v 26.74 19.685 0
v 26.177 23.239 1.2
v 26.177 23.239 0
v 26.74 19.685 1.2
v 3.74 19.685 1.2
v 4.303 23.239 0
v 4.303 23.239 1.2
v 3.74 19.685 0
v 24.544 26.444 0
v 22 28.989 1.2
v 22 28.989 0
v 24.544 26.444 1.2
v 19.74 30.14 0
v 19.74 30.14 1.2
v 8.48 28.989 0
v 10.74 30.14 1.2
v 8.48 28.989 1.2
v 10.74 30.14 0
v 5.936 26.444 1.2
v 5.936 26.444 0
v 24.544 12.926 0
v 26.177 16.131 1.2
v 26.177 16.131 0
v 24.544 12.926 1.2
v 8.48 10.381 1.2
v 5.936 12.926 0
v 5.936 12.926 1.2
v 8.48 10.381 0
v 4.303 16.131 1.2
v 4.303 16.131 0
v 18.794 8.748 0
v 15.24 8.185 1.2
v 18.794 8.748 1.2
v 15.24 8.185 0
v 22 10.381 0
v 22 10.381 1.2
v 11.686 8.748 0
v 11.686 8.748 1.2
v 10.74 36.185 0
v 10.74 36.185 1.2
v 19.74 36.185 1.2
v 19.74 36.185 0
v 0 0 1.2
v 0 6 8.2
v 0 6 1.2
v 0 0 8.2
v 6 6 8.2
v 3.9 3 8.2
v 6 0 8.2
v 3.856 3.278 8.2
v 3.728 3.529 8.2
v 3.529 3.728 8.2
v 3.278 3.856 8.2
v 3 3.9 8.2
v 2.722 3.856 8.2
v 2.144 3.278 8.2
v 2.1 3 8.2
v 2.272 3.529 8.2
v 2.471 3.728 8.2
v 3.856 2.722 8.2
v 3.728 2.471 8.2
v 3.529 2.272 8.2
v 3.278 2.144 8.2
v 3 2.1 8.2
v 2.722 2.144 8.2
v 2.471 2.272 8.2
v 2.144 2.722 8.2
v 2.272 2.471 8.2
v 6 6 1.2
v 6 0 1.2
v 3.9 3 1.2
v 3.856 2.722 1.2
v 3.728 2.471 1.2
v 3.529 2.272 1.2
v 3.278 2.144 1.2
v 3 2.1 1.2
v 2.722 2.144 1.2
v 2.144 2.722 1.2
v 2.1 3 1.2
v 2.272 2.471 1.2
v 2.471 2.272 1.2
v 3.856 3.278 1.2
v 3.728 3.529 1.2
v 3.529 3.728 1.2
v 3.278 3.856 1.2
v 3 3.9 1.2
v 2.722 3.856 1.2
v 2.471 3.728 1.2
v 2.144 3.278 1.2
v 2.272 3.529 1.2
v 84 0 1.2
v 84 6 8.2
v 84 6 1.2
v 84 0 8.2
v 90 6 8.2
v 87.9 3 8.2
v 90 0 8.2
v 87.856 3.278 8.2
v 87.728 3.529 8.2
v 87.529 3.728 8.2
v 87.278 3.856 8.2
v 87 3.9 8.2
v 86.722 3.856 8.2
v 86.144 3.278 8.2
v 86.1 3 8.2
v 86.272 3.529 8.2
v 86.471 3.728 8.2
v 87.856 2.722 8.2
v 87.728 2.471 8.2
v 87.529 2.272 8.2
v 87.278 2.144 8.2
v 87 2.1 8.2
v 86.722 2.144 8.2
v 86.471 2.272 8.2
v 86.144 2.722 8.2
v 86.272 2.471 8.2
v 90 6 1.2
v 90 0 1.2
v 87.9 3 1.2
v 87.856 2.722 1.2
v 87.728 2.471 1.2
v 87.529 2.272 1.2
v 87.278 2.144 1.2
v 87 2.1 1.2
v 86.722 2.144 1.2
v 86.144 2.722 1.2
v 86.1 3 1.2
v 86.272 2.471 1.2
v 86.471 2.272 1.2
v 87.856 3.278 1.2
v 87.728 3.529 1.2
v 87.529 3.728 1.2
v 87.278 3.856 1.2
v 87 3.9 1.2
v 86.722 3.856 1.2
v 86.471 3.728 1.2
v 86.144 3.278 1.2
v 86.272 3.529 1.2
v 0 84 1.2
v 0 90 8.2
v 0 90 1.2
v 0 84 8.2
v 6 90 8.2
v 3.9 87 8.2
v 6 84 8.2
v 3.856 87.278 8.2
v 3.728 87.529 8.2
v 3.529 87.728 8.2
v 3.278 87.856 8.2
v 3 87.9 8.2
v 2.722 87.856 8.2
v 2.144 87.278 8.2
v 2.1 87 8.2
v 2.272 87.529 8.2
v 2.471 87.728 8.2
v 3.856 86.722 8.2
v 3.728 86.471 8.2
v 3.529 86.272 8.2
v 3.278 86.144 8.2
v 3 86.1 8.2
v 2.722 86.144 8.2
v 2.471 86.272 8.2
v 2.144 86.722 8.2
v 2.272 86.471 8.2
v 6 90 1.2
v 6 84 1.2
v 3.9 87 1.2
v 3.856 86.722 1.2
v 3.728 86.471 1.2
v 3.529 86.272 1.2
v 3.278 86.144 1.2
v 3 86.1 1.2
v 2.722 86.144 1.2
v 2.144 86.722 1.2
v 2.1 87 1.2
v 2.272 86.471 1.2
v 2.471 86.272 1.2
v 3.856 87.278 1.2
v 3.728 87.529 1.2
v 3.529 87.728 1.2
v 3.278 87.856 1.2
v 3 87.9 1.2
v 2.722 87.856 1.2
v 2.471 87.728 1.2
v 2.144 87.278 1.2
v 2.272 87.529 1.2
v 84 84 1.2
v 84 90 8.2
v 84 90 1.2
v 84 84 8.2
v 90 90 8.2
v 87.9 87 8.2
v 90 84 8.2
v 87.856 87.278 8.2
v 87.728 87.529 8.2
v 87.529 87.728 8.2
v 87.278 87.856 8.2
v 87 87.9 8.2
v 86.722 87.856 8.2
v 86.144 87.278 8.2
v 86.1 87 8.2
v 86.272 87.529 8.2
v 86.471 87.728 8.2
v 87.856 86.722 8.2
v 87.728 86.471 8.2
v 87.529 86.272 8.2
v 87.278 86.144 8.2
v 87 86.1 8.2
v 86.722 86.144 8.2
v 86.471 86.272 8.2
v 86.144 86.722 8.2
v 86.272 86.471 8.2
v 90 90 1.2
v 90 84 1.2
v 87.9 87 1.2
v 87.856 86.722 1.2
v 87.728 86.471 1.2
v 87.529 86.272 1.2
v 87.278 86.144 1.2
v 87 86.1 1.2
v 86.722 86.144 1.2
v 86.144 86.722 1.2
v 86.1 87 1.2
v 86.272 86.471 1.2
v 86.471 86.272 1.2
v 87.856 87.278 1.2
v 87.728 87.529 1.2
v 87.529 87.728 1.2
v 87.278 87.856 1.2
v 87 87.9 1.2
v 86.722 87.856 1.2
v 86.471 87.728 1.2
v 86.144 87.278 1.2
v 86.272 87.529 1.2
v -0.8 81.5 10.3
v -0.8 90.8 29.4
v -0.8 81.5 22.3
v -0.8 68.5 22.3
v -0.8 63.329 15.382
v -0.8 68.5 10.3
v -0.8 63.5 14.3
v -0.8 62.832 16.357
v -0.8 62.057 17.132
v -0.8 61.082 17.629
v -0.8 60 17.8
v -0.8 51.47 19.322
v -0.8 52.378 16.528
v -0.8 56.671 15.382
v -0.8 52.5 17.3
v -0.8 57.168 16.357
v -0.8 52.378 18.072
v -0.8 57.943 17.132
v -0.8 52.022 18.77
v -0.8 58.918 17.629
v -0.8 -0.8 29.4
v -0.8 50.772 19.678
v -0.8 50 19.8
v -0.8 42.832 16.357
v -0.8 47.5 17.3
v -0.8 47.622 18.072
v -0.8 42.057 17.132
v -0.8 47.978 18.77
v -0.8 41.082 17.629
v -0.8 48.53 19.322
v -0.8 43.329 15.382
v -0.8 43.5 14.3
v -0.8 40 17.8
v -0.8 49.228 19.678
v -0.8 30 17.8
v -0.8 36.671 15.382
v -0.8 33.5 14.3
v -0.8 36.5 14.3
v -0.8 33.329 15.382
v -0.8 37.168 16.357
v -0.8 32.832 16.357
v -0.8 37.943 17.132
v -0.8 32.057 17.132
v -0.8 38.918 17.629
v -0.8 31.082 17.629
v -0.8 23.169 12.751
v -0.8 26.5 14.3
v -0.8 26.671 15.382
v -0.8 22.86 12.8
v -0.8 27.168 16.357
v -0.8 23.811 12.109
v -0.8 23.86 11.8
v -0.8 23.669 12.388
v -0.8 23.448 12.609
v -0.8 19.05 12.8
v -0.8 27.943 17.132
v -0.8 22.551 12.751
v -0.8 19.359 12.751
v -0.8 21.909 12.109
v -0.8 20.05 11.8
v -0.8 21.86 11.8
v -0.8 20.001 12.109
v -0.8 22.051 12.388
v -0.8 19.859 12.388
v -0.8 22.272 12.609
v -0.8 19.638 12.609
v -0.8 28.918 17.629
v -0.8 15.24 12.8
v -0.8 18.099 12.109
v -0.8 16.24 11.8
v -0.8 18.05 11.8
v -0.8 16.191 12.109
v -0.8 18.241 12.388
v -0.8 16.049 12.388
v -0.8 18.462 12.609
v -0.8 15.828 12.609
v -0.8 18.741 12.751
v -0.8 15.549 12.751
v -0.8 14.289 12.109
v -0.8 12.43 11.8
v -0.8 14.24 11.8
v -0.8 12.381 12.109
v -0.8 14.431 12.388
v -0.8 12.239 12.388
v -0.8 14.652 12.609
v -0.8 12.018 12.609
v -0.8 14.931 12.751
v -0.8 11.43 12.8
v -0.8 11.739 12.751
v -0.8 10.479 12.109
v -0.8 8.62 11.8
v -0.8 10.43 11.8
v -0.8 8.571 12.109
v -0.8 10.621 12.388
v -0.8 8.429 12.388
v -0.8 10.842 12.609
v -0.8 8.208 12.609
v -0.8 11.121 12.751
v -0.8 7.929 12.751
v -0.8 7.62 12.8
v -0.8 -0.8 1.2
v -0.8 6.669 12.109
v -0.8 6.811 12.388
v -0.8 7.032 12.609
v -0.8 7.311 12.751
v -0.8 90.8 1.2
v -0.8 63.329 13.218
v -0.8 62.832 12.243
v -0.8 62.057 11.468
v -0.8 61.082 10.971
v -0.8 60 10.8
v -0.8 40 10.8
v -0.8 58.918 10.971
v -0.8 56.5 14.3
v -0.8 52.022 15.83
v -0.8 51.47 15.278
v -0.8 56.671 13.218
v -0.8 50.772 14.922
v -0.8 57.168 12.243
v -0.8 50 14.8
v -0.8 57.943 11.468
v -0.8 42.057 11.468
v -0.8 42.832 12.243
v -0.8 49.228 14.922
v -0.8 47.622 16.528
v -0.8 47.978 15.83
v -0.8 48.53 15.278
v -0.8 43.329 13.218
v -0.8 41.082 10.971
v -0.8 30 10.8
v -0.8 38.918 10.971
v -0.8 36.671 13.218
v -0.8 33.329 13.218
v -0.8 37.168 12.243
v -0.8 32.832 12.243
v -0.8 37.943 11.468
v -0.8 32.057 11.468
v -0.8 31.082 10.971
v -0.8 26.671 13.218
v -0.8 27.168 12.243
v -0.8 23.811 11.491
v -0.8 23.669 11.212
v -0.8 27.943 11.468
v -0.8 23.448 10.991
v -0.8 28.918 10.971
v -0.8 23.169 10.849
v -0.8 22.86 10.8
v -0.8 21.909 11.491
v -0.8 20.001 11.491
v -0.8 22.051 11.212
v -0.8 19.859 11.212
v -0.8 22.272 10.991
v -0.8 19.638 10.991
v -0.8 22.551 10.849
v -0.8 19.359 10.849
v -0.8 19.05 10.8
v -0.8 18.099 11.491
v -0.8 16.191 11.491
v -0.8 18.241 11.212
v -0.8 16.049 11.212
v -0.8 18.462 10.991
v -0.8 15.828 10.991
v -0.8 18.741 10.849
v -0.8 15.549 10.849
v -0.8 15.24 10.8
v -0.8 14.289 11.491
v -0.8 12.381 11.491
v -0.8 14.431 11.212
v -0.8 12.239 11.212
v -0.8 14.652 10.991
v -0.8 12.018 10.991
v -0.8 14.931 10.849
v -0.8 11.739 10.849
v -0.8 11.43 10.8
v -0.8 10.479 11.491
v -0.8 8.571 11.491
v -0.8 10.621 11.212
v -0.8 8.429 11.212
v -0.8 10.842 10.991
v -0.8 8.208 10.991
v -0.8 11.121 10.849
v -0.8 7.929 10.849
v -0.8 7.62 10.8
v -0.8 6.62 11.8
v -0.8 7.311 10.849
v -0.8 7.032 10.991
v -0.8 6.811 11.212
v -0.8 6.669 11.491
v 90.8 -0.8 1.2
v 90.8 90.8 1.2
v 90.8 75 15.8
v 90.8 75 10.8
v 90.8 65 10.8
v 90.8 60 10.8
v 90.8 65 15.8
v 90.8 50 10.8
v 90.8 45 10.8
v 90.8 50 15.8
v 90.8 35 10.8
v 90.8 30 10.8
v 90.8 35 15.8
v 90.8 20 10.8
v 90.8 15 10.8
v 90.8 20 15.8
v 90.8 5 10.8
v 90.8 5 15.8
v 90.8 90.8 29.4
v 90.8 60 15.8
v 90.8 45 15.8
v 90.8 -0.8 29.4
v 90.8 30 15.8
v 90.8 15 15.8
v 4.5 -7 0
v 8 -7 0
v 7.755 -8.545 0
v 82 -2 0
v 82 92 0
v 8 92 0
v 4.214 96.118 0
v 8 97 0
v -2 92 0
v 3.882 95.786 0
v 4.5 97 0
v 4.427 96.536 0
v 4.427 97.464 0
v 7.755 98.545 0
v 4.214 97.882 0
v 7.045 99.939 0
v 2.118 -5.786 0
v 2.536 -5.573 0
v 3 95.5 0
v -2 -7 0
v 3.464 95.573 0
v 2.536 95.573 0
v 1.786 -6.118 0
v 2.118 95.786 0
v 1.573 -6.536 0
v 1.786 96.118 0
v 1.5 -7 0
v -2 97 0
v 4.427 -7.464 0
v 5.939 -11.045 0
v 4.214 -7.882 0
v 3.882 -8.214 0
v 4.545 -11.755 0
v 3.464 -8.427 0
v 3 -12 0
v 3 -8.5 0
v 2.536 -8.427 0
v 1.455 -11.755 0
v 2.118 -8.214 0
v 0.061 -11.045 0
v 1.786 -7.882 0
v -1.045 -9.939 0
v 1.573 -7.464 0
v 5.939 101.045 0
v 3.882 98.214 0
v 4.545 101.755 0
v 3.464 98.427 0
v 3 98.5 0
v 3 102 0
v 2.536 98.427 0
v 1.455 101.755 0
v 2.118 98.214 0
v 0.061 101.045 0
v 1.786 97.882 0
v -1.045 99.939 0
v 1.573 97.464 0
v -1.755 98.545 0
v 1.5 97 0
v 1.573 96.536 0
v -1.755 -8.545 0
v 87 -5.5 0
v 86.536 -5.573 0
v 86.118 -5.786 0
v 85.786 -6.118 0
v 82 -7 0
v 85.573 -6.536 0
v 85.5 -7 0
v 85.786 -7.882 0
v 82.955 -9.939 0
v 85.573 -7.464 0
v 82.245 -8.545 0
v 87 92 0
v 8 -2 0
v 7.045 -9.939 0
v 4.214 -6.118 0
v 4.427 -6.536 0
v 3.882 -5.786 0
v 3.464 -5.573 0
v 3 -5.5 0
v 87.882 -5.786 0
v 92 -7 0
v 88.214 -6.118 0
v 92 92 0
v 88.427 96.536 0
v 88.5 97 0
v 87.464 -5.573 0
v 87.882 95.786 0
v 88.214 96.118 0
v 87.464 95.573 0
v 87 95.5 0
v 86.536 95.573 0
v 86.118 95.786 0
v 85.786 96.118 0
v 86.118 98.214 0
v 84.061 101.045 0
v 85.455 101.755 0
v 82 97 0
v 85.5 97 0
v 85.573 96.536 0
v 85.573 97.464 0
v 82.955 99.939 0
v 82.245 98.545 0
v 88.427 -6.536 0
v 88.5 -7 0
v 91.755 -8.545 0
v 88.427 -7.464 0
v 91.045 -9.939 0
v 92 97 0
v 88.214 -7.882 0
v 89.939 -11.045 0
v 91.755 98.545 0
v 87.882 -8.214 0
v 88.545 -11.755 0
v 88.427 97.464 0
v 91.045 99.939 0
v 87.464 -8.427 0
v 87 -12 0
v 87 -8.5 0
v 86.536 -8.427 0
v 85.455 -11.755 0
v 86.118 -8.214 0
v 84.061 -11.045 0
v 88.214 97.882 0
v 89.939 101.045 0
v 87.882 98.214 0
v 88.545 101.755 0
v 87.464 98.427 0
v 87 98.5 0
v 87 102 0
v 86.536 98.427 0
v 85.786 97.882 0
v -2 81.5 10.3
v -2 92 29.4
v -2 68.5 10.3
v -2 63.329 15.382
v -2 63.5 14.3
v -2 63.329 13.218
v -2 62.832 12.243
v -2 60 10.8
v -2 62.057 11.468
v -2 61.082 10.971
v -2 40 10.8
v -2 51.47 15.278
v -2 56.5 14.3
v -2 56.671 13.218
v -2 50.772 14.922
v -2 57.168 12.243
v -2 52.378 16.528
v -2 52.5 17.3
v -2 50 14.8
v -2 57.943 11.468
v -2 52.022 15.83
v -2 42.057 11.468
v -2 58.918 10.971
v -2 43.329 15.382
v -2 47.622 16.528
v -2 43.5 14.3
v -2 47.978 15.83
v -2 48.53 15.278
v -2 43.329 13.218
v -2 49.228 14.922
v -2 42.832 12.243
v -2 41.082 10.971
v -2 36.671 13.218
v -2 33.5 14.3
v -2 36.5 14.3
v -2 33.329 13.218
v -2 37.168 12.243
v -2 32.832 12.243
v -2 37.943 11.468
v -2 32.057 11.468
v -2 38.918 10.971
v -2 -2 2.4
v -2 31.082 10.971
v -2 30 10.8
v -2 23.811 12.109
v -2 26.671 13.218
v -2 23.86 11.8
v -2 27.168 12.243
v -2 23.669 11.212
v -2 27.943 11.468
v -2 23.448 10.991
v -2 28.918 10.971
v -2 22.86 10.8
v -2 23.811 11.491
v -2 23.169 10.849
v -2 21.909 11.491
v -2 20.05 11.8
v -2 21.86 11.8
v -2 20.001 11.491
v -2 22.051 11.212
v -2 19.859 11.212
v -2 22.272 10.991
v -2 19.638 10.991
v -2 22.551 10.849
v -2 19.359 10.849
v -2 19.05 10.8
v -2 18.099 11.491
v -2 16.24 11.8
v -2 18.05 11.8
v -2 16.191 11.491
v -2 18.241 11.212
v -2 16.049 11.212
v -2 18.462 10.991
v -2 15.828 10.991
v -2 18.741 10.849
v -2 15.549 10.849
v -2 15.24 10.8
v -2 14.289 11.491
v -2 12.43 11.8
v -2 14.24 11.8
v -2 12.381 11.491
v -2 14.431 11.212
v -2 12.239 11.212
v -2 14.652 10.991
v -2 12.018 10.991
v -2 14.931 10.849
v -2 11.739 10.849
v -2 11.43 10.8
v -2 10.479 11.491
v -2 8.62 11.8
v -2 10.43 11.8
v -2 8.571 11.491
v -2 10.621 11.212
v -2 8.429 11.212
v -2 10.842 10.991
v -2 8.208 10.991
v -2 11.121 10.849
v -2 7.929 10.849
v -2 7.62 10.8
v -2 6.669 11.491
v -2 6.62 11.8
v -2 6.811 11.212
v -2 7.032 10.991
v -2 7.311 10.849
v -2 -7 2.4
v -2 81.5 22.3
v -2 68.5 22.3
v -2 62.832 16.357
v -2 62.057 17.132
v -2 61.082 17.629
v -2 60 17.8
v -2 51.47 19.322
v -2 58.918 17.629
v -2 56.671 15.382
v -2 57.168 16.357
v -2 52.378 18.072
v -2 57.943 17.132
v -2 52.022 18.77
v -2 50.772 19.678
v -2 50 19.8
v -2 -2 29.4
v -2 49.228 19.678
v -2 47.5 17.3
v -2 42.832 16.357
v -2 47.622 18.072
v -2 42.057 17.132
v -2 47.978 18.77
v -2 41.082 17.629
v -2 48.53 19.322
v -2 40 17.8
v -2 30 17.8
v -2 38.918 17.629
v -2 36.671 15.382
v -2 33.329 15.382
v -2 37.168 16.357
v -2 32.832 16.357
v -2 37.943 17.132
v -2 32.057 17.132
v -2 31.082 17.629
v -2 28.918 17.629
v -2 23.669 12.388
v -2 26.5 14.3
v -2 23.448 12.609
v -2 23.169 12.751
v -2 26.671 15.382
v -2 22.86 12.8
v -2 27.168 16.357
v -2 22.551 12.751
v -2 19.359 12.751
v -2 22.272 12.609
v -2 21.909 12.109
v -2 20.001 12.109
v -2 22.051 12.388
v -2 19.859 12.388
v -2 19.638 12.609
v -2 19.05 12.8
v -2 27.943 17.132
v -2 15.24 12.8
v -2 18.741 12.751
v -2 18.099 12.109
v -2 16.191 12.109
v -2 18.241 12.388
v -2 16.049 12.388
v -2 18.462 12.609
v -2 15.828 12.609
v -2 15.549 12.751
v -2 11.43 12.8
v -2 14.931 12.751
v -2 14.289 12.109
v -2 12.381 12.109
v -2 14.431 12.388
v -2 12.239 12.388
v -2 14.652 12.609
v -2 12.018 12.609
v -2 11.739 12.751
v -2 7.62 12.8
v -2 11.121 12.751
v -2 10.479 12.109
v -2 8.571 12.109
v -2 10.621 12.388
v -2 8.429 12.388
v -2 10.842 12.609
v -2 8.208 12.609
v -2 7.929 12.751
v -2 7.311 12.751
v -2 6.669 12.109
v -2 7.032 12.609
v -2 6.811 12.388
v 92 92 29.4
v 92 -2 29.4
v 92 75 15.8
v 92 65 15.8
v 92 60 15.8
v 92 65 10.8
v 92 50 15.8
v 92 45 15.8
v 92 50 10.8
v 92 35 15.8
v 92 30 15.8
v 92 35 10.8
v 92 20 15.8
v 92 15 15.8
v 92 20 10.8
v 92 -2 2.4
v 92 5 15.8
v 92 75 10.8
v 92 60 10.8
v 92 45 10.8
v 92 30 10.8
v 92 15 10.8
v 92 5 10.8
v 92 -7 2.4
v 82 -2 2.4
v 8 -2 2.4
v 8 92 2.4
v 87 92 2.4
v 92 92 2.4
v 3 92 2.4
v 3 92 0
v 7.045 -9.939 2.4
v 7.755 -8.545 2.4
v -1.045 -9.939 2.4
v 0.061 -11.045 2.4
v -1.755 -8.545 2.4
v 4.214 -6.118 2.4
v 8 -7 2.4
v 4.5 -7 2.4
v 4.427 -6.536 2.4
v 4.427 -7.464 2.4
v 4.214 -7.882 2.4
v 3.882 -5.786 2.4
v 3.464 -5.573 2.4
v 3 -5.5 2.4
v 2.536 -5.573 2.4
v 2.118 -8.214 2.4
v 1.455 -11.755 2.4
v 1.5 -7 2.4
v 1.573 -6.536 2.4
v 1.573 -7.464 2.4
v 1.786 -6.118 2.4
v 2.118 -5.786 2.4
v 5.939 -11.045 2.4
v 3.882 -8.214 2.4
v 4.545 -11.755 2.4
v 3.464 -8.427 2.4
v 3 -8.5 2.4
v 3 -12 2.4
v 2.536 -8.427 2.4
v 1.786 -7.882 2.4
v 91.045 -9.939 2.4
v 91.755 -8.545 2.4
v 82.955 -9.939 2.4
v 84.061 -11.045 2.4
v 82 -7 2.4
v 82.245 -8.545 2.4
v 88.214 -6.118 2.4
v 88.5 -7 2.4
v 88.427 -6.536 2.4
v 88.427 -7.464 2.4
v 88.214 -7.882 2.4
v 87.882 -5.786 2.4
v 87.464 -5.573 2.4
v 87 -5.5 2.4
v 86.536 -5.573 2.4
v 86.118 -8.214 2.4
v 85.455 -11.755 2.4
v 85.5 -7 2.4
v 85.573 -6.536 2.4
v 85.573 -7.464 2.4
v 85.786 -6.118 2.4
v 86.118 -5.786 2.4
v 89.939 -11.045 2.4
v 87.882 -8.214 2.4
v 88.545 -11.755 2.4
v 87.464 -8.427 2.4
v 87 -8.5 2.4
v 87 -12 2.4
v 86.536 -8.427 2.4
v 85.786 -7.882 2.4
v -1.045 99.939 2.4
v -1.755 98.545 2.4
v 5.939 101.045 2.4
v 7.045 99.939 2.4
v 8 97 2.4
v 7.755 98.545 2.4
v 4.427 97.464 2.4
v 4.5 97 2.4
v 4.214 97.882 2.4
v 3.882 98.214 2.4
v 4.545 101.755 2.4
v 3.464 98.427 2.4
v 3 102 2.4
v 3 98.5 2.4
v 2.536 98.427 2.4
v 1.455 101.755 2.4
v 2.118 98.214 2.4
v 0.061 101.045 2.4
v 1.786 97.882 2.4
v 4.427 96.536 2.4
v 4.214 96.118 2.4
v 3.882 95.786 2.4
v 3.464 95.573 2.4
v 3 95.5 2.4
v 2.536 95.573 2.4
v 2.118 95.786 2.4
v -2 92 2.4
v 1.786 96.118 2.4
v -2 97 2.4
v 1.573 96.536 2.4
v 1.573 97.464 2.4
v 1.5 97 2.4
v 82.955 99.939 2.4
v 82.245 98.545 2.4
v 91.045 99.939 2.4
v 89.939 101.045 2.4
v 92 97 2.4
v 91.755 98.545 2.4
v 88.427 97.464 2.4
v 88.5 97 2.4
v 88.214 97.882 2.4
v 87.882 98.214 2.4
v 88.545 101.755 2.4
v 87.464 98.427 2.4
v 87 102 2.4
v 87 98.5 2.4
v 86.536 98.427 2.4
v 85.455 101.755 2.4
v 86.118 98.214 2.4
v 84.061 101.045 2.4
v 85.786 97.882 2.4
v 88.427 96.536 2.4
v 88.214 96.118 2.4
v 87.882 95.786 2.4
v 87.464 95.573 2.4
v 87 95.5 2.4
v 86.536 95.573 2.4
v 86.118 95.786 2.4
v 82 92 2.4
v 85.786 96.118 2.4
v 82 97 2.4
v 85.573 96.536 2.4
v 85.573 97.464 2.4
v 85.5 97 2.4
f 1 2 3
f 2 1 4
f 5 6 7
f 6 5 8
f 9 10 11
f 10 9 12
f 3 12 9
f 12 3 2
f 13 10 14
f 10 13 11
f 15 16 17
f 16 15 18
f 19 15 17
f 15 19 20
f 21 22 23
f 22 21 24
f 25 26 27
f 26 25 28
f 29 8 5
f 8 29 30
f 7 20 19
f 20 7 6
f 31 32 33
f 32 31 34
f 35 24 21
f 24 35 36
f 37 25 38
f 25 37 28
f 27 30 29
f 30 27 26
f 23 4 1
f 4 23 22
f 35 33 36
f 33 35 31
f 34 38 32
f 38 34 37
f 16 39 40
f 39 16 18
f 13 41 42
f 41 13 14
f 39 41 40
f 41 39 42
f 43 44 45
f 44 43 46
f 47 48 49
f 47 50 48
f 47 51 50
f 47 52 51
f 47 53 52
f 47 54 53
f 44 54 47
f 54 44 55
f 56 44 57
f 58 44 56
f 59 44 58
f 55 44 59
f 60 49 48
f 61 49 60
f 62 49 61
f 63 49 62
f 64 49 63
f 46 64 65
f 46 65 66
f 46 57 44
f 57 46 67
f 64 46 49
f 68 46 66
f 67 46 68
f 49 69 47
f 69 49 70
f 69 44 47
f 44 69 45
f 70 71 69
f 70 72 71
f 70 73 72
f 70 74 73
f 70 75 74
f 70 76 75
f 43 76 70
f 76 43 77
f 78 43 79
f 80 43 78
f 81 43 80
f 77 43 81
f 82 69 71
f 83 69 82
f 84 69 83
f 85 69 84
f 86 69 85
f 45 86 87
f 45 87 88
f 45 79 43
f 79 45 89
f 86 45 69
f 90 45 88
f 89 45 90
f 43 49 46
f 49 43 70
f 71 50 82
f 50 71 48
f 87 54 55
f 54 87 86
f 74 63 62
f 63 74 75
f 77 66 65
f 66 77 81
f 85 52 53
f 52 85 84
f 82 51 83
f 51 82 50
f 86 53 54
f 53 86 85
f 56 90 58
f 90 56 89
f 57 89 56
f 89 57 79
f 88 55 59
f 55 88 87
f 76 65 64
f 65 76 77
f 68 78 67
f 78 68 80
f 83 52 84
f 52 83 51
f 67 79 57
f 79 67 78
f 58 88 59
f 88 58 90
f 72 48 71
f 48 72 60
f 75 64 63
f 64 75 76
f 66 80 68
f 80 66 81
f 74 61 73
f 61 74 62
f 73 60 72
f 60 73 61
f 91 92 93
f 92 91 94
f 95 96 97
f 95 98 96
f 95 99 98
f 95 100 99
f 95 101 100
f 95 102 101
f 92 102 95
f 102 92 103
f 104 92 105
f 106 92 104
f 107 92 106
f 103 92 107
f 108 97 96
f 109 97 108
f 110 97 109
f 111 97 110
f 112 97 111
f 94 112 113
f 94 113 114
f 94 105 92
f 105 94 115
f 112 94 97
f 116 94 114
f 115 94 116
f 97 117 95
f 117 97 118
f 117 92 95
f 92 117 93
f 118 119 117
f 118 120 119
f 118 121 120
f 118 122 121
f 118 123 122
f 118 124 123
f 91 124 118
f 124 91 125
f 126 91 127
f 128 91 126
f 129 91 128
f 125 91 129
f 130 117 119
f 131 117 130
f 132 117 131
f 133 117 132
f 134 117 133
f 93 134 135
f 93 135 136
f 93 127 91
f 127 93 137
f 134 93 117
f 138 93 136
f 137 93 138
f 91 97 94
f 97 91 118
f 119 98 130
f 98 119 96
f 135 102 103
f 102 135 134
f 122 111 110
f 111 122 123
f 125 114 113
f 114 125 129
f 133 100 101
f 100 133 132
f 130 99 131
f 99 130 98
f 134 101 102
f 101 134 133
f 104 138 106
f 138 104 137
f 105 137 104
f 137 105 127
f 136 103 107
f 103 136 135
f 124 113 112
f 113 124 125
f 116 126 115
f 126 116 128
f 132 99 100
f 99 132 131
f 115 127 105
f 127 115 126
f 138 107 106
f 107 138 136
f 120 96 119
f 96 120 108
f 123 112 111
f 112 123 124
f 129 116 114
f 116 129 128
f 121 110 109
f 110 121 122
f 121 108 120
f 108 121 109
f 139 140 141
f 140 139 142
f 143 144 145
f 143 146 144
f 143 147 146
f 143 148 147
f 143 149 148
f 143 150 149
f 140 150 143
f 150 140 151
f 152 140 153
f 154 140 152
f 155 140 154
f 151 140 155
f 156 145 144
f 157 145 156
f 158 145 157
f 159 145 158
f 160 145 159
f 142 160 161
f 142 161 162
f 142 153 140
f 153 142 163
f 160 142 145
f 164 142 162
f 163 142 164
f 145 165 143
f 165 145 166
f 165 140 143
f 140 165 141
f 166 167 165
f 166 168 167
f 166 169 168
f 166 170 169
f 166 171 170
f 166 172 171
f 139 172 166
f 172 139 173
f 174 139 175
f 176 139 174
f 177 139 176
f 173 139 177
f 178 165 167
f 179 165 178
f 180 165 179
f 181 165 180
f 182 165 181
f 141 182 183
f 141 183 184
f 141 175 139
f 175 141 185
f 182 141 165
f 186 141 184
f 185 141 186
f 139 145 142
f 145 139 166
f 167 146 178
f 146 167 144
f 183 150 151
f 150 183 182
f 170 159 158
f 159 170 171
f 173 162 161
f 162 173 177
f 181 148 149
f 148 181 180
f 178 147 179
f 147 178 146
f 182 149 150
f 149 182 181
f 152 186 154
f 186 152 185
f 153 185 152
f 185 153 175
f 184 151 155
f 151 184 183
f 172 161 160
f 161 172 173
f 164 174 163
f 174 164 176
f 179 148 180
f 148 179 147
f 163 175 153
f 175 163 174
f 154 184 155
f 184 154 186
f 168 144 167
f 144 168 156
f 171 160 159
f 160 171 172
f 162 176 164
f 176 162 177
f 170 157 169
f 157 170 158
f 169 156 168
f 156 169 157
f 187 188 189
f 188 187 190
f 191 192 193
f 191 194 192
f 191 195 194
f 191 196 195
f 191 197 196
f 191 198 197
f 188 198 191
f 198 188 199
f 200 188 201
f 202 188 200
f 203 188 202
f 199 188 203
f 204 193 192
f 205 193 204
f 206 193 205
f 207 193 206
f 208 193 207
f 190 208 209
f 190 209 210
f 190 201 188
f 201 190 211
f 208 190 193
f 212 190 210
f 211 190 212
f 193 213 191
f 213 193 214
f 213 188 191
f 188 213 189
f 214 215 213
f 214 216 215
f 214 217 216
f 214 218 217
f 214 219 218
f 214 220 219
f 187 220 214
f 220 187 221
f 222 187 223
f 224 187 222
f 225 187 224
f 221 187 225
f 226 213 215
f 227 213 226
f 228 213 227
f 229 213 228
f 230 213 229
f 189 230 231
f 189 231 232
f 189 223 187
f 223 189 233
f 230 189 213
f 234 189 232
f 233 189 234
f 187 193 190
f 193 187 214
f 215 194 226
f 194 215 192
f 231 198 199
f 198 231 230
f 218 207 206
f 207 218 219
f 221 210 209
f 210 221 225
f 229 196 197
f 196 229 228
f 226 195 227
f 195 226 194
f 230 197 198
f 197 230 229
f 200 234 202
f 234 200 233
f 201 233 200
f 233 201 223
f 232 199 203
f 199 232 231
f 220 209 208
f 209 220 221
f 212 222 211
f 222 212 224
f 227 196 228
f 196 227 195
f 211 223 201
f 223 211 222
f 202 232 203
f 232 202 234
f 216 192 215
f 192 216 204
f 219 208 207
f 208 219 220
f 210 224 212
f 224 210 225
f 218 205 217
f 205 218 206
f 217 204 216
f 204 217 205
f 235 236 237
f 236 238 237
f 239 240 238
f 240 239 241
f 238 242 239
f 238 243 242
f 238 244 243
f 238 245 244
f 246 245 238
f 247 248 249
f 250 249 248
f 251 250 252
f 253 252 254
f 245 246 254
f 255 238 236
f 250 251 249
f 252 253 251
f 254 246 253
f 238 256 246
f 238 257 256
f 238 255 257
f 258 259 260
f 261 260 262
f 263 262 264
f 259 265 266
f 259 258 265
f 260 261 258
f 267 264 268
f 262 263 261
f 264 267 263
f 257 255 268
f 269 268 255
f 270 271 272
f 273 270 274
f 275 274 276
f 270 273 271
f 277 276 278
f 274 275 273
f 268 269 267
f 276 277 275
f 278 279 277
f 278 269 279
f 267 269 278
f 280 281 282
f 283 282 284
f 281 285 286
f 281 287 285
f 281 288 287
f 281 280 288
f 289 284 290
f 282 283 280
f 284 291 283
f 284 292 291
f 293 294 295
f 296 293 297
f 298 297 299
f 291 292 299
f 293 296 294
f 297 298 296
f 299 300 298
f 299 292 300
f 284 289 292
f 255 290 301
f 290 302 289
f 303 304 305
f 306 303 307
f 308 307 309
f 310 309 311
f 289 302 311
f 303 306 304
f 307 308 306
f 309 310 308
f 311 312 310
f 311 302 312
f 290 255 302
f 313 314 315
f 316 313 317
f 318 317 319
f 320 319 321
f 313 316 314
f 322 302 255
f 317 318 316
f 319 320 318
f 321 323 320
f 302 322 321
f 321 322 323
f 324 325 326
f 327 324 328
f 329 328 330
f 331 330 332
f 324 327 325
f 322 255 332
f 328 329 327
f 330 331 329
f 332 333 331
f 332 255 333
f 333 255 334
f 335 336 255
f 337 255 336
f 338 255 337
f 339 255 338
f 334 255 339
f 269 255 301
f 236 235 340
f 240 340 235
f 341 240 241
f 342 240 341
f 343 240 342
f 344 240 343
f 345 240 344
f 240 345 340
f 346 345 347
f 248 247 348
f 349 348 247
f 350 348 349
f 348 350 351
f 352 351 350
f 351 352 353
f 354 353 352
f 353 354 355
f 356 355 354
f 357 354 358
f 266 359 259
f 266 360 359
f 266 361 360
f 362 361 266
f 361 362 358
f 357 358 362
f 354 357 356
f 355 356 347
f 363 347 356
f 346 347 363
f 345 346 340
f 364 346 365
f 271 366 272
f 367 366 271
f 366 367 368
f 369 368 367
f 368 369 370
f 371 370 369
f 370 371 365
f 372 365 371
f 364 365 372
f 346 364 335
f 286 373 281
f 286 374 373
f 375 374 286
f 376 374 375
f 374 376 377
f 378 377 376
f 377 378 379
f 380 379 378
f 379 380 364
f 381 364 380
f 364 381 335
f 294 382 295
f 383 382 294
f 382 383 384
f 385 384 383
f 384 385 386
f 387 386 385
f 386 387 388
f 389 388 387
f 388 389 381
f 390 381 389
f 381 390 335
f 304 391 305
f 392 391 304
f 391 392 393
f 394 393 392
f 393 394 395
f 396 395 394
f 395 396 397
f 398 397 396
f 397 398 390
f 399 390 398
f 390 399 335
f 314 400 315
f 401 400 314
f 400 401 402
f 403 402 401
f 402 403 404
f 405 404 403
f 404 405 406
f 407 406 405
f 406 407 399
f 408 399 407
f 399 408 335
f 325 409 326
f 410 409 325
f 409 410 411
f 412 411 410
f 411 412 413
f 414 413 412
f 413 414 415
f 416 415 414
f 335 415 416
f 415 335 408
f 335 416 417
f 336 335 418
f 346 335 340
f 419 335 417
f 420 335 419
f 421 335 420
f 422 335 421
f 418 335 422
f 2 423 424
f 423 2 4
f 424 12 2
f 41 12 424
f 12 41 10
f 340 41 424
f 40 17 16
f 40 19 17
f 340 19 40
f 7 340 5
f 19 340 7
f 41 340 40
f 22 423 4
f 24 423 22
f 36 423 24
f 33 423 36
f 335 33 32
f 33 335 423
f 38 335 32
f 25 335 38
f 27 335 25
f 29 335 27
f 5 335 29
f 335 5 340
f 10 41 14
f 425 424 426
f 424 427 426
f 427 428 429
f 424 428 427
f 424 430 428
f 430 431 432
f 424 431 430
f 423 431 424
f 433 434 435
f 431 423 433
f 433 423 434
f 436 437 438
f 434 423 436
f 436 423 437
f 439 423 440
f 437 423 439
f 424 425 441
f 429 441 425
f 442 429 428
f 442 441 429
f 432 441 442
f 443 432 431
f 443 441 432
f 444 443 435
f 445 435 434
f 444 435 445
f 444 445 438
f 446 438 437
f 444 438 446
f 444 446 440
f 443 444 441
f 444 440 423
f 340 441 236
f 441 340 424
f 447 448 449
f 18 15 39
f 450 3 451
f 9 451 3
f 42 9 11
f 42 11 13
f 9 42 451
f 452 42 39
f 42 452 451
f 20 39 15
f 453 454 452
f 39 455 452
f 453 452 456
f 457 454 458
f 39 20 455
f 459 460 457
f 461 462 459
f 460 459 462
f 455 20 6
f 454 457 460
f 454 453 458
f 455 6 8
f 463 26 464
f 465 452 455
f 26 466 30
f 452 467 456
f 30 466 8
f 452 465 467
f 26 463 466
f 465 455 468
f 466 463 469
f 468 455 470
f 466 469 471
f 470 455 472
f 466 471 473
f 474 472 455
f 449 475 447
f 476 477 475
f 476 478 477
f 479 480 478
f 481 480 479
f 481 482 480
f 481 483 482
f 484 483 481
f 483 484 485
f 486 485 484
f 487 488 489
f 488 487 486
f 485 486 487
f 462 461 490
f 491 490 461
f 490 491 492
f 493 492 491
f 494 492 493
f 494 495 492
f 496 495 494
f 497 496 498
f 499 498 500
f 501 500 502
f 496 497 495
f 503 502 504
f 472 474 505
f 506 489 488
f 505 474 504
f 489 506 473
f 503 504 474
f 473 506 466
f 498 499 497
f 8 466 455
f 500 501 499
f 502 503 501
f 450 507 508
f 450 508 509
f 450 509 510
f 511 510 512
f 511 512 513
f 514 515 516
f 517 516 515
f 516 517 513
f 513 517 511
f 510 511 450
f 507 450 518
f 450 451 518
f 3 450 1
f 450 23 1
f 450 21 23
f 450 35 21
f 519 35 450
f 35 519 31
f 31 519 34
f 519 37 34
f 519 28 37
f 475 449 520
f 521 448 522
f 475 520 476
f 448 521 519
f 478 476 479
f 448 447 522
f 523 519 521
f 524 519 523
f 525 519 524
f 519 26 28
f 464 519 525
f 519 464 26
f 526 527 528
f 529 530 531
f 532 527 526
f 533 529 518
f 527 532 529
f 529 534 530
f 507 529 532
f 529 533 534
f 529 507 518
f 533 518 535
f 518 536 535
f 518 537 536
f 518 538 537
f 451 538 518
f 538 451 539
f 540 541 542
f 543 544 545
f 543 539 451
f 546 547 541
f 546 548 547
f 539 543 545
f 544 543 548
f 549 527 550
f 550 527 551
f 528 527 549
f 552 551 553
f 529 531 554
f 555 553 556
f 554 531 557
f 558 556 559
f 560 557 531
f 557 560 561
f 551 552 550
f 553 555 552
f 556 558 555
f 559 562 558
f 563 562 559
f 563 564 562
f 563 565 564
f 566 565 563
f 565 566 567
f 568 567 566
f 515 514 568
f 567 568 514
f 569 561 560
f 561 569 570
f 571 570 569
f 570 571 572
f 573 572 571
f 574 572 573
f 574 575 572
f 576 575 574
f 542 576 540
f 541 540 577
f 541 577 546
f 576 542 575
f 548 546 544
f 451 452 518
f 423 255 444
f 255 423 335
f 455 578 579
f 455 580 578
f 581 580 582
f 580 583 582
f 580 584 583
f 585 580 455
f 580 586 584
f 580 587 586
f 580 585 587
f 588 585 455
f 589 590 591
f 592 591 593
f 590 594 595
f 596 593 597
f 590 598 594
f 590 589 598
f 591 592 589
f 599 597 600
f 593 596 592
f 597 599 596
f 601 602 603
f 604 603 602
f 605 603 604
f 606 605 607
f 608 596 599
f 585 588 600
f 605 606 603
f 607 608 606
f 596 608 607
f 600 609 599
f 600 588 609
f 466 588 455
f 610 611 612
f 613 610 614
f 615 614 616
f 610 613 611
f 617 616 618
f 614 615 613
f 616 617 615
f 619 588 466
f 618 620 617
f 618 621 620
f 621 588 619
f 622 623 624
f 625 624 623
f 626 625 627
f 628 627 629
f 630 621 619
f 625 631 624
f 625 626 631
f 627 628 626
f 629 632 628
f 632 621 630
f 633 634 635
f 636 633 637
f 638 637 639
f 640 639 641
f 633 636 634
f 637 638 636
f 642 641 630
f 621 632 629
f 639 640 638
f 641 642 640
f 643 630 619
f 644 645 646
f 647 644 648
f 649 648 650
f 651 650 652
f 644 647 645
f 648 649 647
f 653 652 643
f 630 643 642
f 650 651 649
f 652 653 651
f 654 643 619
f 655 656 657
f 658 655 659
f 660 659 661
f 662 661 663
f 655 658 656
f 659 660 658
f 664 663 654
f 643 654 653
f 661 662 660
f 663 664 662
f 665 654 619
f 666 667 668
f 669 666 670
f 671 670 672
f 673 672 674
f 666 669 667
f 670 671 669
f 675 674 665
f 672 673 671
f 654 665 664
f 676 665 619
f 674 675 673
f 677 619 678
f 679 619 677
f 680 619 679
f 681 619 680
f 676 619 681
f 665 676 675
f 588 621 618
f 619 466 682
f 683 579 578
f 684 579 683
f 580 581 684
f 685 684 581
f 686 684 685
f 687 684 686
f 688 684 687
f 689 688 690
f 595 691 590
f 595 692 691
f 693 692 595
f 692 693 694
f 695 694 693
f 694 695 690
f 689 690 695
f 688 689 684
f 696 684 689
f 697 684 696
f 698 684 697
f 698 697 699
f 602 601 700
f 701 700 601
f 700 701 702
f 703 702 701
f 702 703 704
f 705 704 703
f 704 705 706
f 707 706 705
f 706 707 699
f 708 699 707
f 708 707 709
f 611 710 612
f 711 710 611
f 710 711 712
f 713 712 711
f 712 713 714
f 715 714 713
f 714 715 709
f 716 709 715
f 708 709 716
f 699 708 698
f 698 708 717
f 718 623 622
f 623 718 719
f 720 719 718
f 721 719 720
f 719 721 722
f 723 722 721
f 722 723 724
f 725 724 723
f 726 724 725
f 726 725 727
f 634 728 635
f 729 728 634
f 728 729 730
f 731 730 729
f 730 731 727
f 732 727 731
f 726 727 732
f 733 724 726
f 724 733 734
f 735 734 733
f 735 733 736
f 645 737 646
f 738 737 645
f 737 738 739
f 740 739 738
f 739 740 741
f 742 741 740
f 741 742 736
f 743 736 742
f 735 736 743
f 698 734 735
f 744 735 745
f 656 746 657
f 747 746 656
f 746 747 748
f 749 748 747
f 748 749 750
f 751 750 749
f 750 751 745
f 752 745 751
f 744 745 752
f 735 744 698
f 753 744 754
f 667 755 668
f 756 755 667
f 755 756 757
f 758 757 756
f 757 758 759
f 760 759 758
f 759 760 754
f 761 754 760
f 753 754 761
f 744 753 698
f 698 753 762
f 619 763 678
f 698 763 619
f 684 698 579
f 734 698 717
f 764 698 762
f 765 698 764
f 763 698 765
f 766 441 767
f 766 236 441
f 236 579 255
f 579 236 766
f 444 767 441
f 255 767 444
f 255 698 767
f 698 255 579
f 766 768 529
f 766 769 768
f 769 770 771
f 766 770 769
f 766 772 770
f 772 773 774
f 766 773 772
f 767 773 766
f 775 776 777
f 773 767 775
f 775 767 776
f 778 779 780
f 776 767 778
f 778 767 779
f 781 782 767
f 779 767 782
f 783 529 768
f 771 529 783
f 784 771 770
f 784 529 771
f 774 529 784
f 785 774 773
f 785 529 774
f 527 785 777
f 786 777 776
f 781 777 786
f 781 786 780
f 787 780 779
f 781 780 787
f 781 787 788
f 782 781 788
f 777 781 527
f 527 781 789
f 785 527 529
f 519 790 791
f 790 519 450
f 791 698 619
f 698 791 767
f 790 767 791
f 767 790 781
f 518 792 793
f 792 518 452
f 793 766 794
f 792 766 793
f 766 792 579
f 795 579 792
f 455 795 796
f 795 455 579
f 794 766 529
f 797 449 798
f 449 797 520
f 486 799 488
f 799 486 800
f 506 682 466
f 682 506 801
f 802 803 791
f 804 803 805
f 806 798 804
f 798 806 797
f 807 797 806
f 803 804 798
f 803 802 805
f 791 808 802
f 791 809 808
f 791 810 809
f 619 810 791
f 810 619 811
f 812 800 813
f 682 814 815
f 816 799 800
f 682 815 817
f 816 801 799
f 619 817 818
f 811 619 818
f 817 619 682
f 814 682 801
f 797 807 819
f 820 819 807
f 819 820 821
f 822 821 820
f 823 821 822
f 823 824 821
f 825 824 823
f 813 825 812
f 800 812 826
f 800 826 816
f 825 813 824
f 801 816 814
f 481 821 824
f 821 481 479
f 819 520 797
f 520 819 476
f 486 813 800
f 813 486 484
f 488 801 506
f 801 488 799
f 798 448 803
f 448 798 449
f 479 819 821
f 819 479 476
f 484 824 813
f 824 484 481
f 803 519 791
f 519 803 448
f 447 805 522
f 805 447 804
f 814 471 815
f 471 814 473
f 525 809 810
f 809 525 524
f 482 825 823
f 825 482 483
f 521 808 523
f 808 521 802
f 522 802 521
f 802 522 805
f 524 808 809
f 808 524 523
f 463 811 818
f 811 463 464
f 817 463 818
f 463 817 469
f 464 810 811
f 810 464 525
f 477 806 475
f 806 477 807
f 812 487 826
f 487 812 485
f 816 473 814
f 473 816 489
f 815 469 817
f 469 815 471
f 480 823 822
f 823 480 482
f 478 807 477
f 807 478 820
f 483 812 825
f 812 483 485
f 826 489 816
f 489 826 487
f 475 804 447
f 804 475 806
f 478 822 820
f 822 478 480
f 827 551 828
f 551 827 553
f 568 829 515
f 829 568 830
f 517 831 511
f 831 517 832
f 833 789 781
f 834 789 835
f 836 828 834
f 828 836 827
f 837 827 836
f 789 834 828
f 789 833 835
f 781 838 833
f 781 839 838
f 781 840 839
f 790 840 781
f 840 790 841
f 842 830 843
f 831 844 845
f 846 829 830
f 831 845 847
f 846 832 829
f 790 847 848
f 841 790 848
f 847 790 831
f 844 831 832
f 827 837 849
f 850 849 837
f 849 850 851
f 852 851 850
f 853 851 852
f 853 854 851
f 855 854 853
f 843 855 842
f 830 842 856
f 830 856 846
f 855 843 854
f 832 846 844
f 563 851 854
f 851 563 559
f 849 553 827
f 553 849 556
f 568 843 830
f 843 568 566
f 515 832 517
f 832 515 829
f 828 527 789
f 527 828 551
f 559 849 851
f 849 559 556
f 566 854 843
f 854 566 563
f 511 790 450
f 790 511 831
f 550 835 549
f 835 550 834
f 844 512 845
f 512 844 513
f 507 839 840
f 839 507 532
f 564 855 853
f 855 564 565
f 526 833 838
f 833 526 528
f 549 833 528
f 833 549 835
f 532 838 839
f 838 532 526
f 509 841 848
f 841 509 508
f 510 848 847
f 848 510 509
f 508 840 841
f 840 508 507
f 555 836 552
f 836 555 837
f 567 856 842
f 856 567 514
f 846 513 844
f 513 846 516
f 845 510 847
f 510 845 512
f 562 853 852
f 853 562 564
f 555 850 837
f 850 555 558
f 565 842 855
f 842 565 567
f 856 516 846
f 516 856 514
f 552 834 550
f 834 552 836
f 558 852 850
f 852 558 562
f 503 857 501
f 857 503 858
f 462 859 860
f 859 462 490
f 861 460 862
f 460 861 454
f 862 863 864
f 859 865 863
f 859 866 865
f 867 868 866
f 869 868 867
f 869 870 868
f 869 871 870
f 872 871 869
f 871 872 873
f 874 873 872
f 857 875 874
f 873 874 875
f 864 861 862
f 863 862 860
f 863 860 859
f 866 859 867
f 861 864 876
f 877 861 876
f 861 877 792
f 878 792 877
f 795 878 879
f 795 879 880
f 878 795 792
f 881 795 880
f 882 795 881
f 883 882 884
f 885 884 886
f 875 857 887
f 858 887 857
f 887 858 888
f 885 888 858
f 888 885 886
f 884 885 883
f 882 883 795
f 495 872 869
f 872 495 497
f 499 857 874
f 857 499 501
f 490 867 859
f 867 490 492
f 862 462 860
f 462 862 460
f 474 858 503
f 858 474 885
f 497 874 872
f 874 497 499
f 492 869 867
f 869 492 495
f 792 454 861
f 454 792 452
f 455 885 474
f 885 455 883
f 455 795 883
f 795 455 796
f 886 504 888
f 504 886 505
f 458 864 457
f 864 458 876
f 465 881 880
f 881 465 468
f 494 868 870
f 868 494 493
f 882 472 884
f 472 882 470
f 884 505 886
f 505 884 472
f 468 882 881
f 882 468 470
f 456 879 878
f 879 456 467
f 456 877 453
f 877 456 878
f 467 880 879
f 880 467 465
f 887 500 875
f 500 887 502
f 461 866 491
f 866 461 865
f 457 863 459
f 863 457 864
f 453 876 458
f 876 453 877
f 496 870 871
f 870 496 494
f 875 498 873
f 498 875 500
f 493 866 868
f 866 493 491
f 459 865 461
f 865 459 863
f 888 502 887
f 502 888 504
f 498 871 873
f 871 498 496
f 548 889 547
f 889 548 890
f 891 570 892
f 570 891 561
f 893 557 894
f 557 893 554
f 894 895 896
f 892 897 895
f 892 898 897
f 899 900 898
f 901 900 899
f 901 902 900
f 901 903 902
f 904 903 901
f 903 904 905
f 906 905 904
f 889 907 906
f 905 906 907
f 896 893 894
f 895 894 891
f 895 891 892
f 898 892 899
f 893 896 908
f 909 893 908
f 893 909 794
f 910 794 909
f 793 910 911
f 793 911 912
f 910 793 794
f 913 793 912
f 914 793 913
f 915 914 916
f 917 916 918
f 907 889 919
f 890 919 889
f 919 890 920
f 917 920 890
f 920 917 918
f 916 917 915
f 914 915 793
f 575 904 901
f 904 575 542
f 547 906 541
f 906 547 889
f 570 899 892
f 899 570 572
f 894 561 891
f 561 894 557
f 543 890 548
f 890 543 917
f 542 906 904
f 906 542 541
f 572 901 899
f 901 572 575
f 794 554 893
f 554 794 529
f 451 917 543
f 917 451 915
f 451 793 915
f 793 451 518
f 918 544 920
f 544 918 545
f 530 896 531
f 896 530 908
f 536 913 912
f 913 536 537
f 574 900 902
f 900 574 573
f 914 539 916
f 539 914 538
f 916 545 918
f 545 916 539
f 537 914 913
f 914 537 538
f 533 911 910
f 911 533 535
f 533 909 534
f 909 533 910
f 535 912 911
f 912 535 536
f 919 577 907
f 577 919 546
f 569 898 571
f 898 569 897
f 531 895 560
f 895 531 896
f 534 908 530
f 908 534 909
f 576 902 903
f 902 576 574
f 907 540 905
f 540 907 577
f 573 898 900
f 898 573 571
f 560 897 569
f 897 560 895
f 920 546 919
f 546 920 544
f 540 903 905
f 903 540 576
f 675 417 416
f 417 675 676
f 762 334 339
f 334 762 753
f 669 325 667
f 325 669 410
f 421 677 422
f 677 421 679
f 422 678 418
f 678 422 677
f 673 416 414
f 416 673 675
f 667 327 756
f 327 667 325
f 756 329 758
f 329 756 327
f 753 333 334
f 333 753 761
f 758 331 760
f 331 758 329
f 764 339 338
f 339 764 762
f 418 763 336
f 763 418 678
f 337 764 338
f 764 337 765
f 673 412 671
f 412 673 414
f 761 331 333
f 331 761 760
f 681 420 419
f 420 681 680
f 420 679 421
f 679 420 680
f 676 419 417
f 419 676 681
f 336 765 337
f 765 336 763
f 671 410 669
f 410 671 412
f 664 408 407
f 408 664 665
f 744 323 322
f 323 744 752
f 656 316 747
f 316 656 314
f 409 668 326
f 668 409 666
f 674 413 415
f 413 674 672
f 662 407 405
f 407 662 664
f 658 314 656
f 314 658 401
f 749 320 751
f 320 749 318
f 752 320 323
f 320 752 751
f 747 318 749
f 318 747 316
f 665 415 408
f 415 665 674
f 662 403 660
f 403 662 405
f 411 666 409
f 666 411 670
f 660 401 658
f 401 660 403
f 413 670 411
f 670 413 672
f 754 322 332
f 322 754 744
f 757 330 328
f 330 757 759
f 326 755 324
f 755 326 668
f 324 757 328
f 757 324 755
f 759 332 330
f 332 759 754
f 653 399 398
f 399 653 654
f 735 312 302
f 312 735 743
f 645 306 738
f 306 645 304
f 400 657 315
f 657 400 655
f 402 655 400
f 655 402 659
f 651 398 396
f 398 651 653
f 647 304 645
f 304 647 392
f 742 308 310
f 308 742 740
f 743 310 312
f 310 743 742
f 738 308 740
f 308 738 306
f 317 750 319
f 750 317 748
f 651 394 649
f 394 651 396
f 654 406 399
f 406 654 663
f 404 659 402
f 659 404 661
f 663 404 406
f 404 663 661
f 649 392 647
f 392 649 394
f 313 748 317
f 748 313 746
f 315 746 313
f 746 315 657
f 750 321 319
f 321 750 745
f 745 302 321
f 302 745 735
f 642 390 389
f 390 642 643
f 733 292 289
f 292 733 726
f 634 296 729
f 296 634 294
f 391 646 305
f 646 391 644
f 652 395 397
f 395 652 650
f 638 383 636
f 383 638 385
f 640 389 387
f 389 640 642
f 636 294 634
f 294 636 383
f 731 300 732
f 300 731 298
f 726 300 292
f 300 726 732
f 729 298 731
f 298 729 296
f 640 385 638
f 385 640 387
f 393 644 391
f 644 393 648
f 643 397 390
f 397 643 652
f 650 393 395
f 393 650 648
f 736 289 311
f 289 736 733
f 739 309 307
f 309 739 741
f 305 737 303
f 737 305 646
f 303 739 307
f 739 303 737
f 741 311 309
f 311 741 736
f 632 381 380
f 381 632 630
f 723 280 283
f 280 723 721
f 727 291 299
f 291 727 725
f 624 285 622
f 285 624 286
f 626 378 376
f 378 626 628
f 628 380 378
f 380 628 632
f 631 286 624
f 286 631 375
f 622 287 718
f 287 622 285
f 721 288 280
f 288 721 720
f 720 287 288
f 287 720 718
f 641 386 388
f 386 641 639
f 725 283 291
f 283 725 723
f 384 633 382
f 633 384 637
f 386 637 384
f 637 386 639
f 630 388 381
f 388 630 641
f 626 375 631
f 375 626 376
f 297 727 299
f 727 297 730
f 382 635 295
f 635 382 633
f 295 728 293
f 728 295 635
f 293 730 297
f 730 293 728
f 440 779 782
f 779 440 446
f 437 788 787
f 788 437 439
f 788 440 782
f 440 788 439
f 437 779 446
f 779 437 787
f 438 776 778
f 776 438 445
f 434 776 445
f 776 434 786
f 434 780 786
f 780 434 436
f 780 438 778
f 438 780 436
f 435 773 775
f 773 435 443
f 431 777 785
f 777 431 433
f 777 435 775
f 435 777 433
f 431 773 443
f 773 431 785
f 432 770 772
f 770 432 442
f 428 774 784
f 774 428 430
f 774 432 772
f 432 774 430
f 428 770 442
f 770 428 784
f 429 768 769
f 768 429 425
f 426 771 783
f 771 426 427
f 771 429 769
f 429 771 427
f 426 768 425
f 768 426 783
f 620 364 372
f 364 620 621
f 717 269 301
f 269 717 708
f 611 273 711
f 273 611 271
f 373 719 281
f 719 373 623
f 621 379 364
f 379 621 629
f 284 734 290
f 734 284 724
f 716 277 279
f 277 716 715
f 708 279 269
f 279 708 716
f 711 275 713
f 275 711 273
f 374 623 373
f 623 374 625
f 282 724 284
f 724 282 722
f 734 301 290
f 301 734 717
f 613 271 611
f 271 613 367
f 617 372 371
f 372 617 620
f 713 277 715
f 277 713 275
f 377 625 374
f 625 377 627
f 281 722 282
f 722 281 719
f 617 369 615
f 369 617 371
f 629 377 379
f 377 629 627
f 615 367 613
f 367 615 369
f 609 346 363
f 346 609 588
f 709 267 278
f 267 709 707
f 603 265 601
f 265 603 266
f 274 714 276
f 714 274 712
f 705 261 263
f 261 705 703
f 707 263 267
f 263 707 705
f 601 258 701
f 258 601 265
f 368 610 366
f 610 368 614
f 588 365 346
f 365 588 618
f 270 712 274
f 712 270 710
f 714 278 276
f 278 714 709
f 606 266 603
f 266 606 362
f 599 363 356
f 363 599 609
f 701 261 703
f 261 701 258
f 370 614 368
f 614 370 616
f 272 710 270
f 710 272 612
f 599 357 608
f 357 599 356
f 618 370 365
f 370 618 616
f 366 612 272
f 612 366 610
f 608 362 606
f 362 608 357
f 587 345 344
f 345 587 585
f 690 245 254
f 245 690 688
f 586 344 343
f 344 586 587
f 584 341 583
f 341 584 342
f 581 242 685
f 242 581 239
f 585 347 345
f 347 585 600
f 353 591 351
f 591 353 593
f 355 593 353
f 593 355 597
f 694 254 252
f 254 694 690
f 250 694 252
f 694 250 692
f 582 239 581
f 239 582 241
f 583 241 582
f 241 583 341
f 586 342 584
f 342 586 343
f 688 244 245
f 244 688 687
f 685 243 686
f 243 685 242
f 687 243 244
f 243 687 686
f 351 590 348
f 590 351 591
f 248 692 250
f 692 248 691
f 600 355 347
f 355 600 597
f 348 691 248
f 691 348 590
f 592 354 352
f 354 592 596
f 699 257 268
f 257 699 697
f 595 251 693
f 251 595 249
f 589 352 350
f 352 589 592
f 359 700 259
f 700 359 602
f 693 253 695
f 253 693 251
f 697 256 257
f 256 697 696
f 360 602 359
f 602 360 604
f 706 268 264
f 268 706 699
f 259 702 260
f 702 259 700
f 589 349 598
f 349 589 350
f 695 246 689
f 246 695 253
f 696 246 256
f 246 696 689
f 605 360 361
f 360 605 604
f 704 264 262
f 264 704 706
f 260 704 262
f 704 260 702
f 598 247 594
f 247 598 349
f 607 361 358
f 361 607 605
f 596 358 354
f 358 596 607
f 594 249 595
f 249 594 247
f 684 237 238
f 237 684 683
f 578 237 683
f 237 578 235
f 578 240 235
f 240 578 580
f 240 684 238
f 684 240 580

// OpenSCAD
$fn = 20;
thickness = 1.2;
enc_hgt = 20;
pcb_ofs = 7;
pcb_thick = 1.6;
button_ofs = 3.5+1; button_d = 7;
led_ofs = 2; led_d = 2;
gap = 0.8;

difference() {
    bottom();
    translate([15.24, 19.685, -0.1]) {
        cylinder(h=thickness+0.2, d=23);
        translate([-9/2, 0, -0.1])
            cube([9, 5+23/2, thickness+0.3]);
    }
    
}

difference() {
    walls();
    translate([0,0, thickness+pcb_ofs]) pcb();
}

translate([5-thickness-gap, -5-thickness-gap, 0])
    hold();
translate([90-(5-thickness-gap), -5-thickness-gap, 0])
    hold();
translate([5-thickness-gap, 90-(-5-thickness-gap), 0])
    rotate([0,0,180]) hold();
translate([90-(5-thickness-gap), 90-(-5-thickness-gap), 0])
    rotate([0,0,180]) hold();

module hold() {
    difference() {
        union() {
            cylinder(d=10, h=thickness*2);
            translate([-5, 0, 0]) cube([10, 5, thickness*2]);
        }
        cylinder(d=3, h=thickness*2+0.2);
    }
}

module pcb() {
    // color("Green") cube([90, 90, 1.6]);
    color("Red") {
        translate([-5, 7.62, pcb_thick+led_ofs])
            rotate([0,90,0]) cylinder(h=10, d=led_d);
        translate([-5, 11.43, pcb_thick+led_ofs])
            rotate([0,90,0]) cylinder(h=10, d=led_d);
        translate([-5, 15.24, pcb_thick+led_ofs])
            rotate([0,90,0]) cylinder(h=10, d=led_d);
        translate([-5, 19.05, pcb_thick+led_ofs])
            rotate([0,90,0]) cylinder(h=10, d=led_d);
        translate([-5, 22.86, pcb_thick+led_ofs])
            rotate([0,90,0]) cylinder(h=10, d=led_d);
    }
    color("Black") {
        translate([-5, 30, pcb_thick+button_ofs])
            rotate([0,90,0]) cylinder(h=10, d=button_d);
        translate([-5, 40, pcb_thick+button_ofs])
            rotate([0,90,0]) cylinder(h=10, d=button_d);
        translate([-5, 60, pcb_thick+button_ofs])
            rotate([0,90,0]) cylinder(h=10, d=button_d);
    }
    color("Magenta") {
        translate([-5, 50, pcb_thick+7.5])
            rotate([0,90,0]) cylinder(h=10, d=5);
    }
    color("Blue") {
        translate([90-5, 10-10/2, pcb_thick+1])
            cube([10, 10, 5]);
        translate([90-5, 25-10/2, pcb_thick+1])
            cube([10, 10, 5]);
        translate([90-5, 40-10/2, pcb_thick+1])
            cube([10, 10, 5]);
        translate([90-5, 55-10/2, pcb_thick+1])
            cube([10, 10, 5]);
        translate([90-5, 70-10/2, pcb_thick+1])
            cube([10, 10, 5]);
    }
    color("Gold") {
        translate([-5, 75-13/2, pcb_thick+0.5])
            cube([10, 13, 12]);
    }
}

module walls() {
    difference() {
        translate([-thickness-gap, -thickness-gap, 0])
            cube([90+thickness*2+gap*2,
                90+thickness*2+gap*2,
                enc_hgt+thickness*2+pcb_ofs]);
        translate([-gap, -gap, -0.1])
            cube([90+gap*2, 90+gap*2, enc_hgt+thickness*2+pcb_ofs+0.2]);
    }
    
}

module bottom() {
    translate([-gap, -gap, 0])
        cube([90+gap*2, 90+gap*2, thickness]);
    translate([0,0,thickness]) screw_mount();
    translate([90-6,0,thickness]) screw_mount();
    translate([0,90-6,thickness]) screw_mount();
    translate([90-6,90-6,thickness]) screw_mount();
}

module screw_mount() {
    difference() {
        cube([6, 6, pcb_ofs]);
        translate([3,3,0]) cylinder(h=pcb_ofs+0.1, d=1.8);
    }
}
